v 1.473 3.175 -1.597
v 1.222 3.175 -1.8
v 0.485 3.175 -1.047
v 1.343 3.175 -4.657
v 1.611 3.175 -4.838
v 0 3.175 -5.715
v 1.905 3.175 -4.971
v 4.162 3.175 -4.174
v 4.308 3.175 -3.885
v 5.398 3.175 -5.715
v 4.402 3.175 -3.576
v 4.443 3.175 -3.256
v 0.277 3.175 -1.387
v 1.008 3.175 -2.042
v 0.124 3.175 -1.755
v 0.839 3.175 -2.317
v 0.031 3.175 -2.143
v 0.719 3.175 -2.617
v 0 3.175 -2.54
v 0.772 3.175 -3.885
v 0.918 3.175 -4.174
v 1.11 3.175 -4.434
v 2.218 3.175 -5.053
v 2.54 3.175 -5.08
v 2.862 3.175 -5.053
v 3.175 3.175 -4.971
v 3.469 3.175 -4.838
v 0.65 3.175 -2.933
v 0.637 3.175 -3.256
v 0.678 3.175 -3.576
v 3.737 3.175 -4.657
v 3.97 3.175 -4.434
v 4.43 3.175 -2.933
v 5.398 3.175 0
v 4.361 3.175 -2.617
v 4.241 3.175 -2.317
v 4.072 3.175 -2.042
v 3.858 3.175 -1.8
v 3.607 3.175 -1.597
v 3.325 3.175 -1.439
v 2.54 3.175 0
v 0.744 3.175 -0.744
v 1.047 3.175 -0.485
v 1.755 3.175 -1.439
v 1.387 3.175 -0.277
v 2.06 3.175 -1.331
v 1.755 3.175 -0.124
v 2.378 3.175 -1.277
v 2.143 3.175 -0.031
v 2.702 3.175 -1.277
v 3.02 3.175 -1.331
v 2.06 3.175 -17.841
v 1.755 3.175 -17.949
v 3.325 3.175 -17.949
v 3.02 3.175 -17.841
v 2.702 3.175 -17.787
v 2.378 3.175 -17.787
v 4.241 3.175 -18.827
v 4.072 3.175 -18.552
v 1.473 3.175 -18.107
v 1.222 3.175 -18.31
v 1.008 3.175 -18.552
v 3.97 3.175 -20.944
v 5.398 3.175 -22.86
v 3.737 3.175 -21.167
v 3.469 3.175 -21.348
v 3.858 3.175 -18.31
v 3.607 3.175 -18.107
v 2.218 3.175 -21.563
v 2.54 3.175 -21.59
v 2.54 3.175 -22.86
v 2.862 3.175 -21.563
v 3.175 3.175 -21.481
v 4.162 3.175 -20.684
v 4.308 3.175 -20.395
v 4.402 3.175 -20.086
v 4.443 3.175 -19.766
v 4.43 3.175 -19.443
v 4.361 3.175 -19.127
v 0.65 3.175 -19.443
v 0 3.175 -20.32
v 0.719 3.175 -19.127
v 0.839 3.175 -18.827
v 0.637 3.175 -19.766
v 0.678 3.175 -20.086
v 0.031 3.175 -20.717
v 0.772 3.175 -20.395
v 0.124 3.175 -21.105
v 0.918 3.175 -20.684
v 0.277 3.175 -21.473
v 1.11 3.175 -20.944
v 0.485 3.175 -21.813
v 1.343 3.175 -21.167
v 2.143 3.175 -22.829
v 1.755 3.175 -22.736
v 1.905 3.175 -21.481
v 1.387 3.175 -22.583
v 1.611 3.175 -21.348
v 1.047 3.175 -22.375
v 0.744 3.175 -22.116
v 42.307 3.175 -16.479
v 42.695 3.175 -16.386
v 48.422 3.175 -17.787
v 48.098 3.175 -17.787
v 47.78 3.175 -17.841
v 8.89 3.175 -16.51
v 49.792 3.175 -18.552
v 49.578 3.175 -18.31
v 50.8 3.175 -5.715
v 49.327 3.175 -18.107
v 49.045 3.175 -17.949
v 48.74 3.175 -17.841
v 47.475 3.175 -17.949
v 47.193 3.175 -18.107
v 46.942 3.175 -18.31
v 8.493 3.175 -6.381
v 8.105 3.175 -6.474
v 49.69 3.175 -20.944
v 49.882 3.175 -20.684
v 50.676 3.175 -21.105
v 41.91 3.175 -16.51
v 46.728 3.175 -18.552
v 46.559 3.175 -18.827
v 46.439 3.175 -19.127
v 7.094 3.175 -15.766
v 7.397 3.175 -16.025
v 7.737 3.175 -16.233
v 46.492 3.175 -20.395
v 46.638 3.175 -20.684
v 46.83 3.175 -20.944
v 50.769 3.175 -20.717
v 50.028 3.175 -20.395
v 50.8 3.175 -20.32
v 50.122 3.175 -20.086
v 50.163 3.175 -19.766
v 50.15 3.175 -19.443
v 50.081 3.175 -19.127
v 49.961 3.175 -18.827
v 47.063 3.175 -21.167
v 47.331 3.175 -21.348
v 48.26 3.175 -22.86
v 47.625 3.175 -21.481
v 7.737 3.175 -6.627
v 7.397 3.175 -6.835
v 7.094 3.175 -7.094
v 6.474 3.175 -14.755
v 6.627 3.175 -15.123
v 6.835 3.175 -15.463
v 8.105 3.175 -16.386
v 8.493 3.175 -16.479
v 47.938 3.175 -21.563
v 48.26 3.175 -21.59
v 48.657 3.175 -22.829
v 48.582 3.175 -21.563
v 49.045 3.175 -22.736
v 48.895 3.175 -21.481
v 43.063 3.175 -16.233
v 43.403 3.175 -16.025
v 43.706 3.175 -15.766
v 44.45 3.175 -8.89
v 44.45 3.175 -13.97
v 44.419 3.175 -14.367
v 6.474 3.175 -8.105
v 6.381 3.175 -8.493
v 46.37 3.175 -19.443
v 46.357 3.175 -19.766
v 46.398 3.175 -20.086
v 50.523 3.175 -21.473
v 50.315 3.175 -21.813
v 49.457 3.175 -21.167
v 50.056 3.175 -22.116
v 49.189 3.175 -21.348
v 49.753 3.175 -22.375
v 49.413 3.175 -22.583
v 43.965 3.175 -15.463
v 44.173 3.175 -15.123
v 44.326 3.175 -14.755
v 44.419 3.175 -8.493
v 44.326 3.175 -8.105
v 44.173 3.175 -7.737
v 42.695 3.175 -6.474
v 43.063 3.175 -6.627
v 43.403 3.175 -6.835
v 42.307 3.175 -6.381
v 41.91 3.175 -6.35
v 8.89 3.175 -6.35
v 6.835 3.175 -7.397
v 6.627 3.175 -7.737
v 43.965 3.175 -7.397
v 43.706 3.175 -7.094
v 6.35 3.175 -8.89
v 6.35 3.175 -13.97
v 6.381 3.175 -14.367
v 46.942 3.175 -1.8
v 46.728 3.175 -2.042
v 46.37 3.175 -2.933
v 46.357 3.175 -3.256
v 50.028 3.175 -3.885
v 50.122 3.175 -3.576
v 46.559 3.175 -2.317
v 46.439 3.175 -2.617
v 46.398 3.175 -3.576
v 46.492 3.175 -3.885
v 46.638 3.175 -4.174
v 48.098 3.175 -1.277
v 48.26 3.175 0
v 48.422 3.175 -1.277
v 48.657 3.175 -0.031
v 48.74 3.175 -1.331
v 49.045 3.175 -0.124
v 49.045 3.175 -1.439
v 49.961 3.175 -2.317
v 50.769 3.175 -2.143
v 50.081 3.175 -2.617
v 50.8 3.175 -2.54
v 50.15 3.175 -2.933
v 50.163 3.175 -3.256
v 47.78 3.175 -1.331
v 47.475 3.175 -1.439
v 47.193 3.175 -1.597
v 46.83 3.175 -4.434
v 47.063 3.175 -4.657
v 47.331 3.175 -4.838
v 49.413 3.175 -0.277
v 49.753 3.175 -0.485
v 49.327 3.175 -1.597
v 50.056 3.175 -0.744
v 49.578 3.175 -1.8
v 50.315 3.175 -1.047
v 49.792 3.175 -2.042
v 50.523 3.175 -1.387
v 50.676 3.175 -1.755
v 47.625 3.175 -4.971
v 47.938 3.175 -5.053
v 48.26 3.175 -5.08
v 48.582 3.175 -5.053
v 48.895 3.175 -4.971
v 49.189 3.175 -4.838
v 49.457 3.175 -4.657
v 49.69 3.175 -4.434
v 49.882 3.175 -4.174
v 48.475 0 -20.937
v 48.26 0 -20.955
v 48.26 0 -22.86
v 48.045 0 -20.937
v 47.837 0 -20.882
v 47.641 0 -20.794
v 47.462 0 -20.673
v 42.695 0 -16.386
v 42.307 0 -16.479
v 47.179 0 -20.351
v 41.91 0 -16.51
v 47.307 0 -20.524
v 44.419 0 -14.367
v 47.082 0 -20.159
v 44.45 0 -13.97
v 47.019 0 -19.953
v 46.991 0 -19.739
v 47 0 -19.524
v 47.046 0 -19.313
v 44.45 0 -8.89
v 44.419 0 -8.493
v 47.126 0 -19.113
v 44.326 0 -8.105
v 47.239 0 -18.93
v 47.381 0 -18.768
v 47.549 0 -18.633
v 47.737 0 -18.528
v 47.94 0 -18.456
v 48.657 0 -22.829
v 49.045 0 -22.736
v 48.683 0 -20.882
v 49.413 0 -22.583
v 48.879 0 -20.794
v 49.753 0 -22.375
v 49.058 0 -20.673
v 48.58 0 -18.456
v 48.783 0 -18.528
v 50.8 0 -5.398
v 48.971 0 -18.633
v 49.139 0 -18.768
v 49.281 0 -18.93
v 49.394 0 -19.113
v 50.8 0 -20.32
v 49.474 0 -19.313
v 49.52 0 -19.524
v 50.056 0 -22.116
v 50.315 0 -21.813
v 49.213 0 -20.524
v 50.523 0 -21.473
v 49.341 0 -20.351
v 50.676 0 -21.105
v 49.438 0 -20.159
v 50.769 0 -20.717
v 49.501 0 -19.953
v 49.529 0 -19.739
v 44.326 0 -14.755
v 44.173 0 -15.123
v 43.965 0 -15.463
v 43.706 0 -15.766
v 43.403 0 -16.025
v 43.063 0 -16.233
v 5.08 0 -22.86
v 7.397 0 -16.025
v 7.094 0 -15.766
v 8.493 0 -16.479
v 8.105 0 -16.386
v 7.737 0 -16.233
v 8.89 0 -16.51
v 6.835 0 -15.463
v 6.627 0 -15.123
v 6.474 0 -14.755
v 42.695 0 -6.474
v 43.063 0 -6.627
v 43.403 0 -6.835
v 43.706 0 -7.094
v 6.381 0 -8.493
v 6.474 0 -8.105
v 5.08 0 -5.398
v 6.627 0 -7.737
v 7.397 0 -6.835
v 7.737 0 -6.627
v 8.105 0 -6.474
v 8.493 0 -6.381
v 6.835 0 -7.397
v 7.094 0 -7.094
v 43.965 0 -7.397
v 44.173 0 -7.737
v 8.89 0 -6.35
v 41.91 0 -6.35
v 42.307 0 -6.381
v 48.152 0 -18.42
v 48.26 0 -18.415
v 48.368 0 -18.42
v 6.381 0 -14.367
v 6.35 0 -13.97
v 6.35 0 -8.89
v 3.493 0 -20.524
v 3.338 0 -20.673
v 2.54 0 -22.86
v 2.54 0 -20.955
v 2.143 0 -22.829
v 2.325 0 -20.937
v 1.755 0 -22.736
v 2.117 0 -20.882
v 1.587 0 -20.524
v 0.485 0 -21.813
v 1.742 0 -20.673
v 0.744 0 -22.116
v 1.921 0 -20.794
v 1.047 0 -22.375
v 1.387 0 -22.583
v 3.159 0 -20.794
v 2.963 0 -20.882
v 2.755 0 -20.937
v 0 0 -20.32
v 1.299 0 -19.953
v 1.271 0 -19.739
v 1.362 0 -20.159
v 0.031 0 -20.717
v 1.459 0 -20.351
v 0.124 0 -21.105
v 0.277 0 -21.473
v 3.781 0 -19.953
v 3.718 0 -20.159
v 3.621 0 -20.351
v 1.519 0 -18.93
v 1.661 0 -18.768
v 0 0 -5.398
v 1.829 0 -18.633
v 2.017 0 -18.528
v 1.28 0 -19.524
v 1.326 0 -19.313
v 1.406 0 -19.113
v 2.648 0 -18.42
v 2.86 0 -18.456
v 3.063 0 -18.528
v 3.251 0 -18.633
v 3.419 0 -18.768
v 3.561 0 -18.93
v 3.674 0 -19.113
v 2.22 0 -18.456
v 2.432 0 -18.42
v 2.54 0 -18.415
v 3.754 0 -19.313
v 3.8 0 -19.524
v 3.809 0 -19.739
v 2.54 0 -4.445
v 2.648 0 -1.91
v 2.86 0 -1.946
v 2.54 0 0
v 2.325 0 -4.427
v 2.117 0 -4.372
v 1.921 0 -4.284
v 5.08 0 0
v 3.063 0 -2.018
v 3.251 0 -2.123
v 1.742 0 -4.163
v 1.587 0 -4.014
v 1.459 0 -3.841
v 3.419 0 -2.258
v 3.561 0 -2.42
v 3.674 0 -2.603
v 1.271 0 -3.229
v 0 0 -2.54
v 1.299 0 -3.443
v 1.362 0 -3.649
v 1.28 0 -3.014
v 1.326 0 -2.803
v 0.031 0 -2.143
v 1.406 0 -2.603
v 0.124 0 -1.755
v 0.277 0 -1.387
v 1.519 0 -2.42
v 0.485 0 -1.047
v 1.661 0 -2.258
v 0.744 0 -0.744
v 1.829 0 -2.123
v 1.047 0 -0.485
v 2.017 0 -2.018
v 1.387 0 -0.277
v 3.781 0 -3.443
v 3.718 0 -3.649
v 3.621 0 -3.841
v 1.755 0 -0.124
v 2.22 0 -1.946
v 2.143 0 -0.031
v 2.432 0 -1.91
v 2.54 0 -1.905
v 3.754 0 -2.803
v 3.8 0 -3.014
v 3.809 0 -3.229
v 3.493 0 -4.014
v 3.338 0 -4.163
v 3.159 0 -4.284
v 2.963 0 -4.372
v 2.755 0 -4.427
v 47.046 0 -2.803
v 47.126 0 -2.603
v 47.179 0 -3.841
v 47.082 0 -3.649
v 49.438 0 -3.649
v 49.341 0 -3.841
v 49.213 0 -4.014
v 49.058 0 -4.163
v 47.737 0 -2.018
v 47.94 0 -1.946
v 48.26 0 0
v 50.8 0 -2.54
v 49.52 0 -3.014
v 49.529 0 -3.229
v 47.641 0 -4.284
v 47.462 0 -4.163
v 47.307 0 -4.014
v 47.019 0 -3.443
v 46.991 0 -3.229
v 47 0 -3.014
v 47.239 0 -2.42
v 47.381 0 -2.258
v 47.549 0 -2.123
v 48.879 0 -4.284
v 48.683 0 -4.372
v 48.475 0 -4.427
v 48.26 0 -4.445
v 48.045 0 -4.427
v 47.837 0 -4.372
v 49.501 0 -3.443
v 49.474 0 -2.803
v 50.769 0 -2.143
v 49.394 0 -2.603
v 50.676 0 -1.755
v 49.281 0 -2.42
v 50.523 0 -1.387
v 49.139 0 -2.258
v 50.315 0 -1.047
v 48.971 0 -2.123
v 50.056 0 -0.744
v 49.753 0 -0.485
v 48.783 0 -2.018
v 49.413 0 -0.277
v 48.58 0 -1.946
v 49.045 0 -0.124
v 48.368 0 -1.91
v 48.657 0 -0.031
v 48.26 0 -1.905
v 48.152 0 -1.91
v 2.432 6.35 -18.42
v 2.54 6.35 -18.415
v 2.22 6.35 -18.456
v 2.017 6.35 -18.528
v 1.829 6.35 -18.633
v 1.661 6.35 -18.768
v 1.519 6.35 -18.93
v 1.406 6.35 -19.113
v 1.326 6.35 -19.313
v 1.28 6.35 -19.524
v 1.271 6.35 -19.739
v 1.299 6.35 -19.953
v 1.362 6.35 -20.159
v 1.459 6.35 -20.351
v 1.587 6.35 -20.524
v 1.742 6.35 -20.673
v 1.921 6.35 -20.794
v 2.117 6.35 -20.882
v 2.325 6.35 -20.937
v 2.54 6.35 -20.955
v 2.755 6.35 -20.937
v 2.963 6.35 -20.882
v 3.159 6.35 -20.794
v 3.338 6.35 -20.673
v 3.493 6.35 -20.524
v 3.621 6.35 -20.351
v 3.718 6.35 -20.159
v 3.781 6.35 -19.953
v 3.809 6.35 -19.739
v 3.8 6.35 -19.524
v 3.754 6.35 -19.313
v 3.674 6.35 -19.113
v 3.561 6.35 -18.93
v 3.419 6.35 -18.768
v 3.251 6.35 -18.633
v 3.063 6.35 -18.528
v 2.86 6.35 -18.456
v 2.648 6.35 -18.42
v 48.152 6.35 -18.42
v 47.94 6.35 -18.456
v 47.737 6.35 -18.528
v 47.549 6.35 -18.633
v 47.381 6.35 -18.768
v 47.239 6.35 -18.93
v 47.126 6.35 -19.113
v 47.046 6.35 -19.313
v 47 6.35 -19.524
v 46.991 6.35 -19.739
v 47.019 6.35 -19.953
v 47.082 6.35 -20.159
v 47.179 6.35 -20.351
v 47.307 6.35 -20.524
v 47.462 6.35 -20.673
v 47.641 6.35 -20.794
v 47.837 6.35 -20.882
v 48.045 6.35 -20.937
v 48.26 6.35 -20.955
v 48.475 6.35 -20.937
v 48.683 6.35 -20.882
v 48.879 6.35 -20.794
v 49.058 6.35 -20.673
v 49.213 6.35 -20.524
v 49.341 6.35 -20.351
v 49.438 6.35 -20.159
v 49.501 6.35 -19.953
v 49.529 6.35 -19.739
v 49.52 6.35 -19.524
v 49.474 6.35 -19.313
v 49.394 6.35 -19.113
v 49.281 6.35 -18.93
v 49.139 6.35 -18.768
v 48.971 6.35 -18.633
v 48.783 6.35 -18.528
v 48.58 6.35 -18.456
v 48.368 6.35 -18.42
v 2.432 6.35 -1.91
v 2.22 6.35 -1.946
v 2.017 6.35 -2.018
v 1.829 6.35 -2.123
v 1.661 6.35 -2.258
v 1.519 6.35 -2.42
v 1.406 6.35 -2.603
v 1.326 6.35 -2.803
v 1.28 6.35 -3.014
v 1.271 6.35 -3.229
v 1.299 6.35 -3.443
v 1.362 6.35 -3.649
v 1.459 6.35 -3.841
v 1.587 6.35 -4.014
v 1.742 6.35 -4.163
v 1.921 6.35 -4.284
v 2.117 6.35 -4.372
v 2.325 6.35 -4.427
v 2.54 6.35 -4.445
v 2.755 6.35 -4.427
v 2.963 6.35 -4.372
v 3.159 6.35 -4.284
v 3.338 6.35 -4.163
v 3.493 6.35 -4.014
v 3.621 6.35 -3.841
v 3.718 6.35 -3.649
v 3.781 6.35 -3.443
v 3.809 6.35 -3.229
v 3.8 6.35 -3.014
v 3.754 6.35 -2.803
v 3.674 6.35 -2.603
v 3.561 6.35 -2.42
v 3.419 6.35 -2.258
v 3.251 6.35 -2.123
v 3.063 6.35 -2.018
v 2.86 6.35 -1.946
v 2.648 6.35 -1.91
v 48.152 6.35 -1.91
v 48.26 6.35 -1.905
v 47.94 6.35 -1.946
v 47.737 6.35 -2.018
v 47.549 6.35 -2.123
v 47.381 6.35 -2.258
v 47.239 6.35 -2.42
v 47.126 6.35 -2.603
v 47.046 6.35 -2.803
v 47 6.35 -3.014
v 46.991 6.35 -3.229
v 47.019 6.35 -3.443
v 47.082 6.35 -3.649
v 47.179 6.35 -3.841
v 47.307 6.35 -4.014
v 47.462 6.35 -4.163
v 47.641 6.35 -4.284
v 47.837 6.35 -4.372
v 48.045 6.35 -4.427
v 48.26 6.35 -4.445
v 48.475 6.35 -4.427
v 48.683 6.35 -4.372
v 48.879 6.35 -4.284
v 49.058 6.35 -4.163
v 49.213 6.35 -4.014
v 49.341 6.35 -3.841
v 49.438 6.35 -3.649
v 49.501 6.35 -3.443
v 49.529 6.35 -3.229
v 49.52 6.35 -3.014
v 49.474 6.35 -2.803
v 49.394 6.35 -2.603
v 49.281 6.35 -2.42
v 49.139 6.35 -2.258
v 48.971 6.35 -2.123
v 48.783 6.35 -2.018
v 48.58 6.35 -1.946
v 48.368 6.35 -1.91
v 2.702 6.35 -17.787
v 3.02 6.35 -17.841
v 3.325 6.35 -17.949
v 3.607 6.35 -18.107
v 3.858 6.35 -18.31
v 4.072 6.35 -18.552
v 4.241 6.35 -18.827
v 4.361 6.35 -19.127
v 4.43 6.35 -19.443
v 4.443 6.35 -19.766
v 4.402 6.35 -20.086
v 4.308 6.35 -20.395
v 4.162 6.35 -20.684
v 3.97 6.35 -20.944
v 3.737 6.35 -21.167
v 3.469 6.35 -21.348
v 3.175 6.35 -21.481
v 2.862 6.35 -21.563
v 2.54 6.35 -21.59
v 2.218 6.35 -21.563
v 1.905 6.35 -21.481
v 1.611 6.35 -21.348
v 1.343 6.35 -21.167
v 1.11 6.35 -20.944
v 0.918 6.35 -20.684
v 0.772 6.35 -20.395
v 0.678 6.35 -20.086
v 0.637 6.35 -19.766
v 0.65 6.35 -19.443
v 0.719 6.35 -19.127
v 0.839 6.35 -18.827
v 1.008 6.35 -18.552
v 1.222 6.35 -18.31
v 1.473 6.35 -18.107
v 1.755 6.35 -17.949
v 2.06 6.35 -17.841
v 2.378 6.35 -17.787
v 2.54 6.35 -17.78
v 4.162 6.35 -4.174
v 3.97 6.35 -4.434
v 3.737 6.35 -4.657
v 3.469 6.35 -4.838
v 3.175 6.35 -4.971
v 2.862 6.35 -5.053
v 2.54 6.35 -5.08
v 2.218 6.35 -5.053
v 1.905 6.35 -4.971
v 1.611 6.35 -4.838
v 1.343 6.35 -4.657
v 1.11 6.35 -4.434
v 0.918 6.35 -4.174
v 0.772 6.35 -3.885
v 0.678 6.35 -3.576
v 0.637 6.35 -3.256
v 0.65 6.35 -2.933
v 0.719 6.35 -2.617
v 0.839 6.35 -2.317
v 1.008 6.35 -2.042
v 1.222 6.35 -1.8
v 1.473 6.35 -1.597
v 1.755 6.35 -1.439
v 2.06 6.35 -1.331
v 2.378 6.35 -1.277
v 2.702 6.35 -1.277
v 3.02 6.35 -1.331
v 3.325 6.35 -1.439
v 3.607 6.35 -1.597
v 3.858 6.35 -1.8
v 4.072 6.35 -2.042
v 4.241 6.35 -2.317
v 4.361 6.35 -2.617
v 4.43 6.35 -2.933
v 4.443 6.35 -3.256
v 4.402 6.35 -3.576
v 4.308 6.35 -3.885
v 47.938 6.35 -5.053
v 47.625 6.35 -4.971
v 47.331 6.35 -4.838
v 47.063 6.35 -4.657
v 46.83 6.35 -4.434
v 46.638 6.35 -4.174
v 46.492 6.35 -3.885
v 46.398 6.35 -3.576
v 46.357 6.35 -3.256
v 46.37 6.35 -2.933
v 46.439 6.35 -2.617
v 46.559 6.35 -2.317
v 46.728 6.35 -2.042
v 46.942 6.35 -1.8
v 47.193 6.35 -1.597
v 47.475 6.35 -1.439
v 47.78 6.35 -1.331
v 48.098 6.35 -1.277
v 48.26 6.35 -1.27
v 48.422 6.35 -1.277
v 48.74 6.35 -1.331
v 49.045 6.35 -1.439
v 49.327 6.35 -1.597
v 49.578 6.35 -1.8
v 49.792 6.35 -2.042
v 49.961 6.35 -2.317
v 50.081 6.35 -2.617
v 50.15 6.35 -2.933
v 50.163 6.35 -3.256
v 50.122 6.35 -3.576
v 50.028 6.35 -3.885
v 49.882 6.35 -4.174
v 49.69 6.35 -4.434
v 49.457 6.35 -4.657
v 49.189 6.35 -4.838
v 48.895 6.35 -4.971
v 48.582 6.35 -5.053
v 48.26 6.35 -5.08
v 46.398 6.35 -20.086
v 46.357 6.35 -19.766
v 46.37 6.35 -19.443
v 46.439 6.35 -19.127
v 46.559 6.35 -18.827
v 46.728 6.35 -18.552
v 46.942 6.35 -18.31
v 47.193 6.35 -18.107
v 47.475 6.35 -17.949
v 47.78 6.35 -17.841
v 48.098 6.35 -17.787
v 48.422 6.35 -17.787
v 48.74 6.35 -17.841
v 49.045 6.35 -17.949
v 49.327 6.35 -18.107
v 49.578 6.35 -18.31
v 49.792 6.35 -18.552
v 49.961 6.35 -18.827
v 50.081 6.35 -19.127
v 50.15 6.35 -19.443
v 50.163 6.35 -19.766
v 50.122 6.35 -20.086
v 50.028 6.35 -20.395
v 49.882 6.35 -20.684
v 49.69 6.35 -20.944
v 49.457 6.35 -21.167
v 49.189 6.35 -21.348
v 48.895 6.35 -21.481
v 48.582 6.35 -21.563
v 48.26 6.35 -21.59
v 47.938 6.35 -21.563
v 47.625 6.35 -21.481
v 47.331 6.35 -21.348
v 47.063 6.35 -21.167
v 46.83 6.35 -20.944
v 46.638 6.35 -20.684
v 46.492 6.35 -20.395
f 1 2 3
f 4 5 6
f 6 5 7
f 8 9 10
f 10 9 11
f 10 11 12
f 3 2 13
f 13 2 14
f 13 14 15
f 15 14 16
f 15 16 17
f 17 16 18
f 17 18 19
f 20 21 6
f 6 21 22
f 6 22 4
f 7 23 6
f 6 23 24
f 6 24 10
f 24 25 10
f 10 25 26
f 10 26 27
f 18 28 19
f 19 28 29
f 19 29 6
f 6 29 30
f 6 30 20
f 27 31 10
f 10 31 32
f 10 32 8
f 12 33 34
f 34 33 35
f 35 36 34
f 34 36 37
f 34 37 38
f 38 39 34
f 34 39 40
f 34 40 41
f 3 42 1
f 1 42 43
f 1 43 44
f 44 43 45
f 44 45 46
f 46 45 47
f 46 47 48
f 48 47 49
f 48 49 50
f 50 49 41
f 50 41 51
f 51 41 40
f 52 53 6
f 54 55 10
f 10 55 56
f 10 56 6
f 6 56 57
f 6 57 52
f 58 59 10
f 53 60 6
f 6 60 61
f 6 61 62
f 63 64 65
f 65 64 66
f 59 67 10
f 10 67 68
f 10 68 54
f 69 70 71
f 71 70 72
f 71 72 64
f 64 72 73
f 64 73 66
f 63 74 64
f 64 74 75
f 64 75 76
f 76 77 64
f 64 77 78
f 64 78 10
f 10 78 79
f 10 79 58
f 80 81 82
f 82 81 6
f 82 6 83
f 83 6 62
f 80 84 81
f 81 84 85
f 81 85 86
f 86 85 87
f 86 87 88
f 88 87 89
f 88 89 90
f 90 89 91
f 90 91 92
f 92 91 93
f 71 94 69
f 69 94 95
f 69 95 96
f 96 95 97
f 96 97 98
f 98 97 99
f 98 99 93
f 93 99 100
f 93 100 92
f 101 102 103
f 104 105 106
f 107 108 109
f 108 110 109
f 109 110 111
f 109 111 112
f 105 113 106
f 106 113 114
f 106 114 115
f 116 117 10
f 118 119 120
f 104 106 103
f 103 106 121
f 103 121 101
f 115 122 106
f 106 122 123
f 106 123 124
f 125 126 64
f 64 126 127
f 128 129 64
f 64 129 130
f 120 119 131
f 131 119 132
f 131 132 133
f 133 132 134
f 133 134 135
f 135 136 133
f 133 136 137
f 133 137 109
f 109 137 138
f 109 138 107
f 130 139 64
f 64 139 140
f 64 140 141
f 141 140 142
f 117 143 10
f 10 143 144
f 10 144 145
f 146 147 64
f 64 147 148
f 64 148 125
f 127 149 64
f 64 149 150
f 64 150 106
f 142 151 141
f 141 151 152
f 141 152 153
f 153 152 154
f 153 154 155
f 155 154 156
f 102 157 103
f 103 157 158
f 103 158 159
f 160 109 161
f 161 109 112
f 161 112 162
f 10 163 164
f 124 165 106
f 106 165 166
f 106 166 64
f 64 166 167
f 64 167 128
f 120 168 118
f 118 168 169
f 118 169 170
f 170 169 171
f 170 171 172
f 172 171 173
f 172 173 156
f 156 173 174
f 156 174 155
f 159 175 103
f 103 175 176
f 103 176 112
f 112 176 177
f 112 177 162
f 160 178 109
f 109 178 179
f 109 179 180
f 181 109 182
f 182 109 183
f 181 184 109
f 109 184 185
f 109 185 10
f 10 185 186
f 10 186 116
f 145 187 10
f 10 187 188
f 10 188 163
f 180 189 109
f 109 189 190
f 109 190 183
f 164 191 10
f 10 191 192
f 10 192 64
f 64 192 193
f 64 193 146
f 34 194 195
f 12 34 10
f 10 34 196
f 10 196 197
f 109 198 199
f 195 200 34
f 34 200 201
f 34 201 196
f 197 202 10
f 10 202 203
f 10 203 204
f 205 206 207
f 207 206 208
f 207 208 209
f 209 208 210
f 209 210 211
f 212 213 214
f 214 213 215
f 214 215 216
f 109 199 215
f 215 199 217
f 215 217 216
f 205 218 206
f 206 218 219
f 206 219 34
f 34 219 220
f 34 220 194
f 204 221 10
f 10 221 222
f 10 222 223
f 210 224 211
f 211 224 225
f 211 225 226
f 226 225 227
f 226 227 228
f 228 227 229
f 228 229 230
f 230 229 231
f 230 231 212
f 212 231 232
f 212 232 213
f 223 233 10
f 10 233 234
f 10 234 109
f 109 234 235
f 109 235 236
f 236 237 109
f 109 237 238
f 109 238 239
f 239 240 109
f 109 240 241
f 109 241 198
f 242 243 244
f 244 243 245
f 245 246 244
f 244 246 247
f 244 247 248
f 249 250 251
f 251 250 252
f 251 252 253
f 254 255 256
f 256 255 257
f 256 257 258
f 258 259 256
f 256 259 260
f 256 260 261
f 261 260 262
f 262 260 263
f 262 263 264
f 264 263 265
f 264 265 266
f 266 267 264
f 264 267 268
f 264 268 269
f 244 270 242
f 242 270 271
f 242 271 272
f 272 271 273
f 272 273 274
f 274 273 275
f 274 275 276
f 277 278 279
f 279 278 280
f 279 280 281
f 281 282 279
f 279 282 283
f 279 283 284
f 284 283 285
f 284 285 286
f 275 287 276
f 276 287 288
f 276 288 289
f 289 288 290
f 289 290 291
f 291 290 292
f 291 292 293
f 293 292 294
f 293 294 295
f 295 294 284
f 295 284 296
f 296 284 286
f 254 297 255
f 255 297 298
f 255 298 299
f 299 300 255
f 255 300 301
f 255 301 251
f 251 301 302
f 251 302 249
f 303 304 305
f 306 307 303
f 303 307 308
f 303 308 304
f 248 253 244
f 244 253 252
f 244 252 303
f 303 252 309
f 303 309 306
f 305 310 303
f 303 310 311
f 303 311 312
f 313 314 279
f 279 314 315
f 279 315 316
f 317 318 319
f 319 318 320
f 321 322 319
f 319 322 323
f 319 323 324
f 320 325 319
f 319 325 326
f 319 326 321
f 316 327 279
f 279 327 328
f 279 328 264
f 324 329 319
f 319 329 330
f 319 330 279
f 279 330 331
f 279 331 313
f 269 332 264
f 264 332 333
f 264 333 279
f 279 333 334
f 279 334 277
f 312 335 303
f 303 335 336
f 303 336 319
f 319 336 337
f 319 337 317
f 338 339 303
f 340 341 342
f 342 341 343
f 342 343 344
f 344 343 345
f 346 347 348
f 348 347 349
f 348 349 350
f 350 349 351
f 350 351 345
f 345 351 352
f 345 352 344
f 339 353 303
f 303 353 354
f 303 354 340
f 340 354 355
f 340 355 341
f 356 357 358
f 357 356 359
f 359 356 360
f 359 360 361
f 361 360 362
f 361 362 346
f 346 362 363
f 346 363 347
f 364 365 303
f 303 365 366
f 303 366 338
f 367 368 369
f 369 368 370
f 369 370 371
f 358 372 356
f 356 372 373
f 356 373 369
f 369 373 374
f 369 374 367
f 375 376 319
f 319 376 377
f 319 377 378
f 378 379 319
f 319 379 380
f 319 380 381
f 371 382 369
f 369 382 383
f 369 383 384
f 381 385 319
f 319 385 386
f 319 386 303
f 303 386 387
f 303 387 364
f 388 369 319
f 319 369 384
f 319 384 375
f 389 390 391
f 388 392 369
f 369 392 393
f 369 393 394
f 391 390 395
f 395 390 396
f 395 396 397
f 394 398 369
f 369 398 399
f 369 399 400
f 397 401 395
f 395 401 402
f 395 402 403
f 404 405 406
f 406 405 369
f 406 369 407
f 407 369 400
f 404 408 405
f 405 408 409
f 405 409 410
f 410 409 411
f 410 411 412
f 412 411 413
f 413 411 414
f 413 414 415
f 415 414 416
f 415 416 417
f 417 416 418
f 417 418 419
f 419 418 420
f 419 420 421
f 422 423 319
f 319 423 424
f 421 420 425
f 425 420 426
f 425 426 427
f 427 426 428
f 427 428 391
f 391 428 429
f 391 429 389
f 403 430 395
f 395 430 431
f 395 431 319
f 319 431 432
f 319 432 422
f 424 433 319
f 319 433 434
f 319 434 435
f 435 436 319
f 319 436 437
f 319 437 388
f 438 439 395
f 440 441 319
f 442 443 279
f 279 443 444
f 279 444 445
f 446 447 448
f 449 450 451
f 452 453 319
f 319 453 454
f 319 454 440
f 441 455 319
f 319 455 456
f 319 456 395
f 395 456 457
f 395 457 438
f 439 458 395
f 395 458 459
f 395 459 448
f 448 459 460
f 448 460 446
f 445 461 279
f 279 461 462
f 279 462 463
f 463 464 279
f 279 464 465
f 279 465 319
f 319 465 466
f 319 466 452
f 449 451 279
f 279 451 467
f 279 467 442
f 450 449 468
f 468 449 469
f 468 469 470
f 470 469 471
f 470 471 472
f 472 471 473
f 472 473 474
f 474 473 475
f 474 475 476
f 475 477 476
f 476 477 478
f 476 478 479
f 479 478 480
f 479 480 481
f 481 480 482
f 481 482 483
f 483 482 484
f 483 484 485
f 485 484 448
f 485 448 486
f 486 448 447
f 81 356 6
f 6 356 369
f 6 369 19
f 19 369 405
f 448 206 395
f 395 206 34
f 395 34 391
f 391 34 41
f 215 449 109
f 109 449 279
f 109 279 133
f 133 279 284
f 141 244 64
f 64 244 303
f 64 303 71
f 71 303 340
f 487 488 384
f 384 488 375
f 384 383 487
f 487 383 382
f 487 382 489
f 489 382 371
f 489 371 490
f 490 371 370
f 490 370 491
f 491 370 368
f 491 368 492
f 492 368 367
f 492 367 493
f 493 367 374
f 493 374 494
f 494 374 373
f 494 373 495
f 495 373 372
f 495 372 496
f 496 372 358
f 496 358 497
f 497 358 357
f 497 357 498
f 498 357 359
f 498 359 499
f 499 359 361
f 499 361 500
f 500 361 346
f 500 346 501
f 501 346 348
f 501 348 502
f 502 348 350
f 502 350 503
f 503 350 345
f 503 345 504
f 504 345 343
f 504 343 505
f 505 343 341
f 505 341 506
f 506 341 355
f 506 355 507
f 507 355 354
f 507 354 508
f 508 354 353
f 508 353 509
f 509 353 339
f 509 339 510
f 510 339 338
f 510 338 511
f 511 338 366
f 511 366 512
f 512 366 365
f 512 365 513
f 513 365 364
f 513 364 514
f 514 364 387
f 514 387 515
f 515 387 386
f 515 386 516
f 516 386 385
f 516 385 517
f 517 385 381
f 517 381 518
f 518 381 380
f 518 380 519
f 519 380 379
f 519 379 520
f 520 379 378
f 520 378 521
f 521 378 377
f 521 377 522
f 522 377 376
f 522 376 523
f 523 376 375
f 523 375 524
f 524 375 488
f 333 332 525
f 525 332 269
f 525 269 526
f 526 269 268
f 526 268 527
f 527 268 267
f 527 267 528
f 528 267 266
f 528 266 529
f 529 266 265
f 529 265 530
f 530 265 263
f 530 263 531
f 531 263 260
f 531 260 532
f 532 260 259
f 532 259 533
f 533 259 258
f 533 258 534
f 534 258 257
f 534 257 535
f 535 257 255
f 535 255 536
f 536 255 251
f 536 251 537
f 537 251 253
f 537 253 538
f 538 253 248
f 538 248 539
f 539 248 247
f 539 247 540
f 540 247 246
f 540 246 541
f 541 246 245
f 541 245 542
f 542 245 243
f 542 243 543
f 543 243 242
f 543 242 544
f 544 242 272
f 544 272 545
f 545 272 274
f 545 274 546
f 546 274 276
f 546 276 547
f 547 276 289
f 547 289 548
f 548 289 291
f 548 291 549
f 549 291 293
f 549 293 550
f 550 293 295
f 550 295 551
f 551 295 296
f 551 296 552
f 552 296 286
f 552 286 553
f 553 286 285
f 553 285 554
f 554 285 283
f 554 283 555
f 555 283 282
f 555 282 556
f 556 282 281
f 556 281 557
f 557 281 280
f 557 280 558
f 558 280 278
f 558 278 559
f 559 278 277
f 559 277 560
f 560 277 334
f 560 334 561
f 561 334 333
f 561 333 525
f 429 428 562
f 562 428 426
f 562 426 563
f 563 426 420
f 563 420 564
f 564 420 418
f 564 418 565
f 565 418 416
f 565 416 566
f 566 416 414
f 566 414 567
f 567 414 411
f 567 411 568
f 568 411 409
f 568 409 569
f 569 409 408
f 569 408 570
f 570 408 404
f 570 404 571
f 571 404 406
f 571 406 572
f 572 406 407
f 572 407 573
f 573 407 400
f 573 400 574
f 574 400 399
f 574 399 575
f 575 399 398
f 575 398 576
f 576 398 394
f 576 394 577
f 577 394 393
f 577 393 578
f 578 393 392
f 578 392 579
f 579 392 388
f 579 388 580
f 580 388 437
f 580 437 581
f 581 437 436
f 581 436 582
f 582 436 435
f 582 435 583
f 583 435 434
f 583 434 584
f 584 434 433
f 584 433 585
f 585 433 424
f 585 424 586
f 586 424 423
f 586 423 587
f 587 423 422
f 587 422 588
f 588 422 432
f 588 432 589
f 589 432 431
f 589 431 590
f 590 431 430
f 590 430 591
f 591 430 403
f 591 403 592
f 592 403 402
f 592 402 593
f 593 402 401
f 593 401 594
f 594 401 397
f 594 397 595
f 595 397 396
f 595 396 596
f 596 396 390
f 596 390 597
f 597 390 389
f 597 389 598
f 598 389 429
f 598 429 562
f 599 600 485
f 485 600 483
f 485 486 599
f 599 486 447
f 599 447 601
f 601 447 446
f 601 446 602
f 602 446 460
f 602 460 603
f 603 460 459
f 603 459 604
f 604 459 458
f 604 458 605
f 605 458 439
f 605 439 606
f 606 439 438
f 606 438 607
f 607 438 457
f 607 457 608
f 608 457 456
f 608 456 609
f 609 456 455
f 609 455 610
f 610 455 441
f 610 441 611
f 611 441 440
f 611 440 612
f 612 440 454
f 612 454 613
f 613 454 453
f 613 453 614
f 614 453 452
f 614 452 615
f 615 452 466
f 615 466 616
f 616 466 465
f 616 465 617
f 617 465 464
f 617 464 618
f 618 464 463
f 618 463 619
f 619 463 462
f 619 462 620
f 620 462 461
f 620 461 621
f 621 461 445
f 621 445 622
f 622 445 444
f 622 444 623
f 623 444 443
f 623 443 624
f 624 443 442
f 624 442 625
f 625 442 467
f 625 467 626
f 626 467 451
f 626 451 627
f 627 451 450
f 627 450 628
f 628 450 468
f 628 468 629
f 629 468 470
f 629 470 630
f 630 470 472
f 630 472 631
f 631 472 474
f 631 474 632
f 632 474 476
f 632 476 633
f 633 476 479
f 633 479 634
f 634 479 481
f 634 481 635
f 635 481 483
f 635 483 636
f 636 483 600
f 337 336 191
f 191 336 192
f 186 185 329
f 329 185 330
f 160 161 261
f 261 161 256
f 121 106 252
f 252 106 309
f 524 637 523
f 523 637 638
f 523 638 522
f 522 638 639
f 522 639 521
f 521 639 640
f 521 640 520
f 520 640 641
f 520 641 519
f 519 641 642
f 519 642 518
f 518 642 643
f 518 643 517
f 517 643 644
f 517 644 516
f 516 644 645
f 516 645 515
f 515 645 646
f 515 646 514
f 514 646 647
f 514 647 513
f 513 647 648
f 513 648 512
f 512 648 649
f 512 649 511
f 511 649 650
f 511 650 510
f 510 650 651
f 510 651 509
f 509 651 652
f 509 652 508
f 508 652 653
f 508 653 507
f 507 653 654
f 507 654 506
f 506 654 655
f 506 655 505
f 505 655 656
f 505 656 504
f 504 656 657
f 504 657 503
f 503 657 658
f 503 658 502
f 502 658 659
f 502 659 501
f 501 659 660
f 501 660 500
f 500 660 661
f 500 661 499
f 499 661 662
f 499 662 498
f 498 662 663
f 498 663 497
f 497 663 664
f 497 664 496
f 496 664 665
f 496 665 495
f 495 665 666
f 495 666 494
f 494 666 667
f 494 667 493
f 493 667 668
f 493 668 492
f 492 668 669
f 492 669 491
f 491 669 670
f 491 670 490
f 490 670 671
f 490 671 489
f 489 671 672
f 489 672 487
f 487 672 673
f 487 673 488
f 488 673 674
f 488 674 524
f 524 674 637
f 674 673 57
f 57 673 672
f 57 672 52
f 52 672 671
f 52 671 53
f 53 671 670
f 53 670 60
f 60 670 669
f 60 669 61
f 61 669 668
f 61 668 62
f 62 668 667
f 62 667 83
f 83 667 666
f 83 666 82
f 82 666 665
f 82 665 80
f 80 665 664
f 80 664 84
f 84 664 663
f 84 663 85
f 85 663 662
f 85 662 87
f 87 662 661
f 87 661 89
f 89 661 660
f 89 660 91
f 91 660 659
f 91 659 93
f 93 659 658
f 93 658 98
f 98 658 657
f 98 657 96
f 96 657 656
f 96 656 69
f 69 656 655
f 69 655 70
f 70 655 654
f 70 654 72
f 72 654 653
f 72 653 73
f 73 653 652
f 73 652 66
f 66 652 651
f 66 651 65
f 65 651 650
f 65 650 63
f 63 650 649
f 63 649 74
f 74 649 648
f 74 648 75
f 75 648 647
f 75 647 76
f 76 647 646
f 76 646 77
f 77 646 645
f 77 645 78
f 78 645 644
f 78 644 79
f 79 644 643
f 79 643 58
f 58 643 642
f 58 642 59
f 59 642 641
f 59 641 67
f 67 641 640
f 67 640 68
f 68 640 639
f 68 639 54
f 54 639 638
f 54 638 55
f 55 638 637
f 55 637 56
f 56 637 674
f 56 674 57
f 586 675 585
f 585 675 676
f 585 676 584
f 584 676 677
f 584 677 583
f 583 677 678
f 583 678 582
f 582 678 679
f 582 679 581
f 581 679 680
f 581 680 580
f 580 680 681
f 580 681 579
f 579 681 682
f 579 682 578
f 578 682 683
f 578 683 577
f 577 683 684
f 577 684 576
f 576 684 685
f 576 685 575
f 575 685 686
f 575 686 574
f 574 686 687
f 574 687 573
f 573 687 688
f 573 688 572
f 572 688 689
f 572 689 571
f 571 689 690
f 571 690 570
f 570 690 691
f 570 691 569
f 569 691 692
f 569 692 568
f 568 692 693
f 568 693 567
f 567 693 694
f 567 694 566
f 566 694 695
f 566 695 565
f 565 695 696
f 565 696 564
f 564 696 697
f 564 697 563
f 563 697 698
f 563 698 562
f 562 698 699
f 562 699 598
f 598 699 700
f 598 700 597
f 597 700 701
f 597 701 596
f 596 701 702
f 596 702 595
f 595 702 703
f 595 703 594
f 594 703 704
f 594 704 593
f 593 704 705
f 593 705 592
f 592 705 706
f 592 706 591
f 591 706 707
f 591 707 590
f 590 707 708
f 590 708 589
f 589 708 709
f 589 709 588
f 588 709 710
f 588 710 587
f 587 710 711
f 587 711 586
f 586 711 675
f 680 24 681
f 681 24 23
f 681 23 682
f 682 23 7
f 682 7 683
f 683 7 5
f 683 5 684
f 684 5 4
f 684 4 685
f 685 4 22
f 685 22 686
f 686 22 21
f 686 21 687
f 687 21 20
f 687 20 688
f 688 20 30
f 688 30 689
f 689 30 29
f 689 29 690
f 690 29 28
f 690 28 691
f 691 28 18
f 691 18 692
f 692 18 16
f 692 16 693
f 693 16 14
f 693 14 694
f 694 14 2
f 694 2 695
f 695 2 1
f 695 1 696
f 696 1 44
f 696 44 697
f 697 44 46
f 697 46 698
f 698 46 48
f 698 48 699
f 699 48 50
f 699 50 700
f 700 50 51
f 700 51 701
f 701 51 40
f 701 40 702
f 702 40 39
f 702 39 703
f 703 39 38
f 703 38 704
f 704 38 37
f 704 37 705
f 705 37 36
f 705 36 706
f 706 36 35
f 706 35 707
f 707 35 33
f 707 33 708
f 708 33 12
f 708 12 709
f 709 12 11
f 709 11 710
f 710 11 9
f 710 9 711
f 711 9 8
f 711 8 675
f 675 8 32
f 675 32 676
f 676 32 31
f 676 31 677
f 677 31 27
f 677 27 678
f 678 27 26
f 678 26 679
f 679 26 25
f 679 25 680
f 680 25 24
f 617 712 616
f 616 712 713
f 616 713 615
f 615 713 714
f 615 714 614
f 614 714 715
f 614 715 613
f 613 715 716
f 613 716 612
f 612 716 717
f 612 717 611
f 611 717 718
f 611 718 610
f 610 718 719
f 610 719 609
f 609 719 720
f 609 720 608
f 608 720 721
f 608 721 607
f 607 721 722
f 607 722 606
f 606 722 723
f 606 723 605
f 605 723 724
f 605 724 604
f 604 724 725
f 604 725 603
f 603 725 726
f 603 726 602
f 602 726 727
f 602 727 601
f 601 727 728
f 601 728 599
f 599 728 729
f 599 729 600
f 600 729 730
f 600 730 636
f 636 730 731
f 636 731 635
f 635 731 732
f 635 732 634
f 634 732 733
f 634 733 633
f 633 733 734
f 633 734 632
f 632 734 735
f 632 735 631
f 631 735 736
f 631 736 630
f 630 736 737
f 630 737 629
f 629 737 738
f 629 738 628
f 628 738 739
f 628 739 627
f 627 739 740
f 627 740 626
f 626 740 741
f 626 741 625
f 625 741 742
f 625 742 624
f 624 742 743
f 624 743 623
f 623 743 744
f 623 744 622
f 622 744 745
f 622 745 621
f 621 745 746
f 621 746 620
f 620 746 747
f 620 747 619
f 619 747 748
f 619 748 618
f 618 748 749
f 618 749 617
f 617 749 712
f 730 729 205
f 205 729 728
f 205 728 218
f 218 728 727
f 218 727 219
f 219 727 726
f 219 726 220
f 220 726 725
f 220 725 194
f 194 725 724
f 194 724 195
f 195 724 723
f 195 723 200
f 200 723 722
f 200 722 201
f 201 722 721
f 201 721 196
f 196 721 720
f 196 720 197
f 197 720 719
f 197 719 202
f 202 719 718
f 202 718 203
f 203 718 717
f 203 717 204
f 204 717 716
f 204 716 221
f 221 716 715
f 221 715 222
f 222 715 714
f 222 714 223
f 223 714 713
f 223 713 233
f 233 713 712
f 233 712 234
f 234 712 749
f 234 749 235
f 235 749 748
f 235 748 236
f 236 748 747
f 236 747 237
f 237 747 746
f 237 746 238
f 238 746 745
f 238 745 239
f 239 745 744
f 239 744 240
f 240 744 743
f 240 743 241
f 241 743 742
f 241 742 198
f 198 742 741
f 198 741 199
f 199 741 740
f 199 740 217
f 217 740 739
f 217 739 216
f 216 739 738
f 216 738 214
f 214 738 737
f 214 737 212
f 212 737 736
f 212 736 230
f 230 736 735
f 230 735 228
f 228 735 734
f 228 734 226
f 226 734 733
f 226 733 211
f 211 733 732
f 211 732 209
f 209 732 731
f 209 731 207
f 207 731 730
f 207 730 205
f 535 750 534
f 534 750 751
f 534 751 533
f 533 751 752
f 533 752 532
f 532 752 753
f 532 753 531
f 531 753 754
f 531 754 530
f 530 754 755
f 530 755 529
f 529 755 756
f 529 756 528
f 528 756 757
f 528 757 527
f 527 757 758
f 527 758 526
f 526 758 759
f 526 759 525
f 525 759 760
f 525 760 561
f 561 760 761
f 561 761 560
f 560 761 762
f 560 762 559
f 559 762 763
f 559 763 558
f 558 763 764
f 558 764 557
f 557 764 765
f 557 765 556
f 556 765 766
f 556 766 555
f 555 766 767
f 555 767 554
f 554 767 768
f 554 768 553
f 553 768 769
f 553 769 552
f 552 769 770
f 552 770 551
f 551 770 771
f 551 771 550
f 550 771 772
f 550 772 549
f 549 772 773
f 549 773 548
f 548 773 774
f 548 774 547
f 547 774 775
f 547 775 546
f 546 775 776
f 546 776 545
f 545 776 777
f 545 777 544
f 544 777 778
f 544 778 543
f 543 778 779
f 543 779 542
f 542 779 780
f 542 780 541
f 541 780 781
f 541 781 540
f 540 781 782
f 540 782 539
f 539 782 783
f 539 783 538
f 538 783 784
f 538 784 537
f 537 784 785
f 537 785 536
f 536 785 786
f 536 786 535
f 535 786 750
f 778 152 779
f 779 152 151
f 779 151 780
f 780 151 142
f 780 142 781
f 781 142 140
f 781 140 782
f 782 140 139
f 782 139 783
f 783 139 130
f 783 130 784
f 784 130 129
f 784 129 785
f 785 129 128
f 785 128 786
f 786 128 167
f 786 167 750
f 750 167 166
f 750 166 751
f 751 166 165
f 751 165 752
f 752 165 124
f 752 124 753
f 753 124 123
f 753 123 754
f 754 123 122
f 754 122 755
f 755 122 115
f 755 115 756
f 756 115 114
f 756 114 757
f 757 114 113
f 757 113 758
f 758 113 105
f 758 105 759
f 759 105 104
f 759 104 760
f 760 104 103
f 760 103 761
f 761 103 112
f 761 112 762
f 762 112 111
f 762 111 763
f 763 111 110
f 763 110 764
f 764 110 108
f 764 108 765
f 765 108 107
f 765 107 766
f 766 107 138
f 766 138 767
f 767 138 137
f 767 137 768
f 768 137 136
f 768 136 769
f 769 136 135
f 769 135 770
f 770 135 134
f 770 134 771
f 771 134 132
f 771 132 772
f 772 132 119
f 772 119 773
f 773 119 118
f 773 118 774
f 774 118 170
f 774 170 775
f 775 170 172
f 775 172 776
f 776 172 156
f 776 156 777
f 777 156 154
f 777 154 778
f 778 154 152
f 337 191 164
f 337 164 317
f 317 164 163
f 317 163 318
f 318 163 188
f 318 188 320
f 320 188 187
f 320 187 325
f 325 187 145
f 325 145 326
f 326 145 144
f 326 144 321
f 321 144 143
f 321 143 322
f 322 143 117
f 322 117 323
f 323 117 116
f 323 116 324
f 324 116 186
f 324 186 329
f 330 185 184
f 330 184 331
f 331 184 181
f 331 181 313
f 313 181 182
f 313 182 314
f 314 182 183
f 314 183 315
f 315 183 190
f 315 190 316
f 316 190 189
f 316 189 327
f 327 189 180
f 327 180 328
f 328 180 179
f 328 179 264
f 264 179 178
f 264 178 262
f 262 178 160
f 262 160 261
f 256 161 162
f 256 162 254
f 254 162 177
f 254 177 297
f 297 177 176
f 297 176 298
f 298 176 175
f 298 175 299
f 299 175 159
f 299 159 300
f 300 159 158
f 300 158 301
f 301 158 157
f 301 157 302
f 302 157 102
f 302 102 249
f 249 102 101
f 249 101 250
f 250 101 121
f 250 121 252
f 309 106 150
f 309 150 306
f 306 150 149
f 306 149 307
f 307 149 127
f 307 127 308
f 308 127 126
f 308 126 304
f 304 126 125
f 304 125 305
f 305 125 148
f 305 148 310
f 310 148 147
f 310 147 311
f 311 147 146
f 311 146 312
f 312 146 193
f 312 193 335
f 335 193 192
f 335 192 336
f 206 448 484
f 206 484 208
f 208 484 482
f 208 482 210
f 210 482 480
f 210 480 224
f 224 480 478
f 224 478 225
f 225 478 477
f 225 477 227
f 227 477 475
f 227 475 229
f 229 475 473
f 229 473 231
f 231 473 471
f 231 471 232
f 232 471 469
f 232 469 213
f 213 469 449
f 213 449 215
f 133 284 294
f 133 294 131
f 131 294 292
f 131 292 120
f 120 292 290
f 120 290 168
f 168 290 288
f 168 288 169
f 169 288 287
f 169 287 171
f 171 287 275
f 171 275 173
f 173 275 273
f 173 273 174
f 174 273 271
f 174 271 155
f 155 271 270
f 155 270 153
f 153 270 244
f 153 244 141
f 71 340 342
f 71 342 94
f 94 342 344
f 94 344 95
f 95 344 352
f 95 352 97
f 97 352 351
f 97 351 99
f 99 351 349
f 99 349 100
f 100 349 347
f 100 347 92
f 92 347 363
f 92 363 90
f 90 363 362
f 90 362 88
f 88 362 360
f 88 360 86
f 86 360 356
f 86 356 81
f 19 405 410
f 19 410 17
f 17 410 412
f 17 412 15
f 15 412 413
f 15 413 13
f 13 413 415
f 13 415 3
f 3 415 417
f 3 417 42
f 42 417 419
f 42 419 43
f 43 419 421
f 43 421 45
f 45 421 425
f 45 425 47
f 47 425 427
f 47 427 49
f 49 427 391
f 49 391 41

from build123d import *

# Parameters (mm, degrees)
SKETCH1_W           = 50.8
SKETCH1_H           = 22.86
SKETCH1_R           = 1.27
SKETCH1_W_2         = 38.1
SKETCH1_H_2         = 10.16
BOSS_EXTRUDE1_DEPTH = 3.175
SKETCH2_R           = 1.905
SKETCH2_R_2         = 1.27
BOSS_EXTRUDE2_DEPTH = 3.175
FILLET1_R           = 2.54


with BuildPart() as part:
    # Sketch1 → Boss-Extrude1 (new body)
    with BuildSketch(Plane(origin=(0, 0, 0), x_dir=(1, 0, 0), z_dir=(0, 1, 0))):
        with Locations((25.4, 11.43)):
            Rectangle(SKETCH1_W, SKETCH1_H)
        with Locations((2.54, 19.685)):
            Circle(SKETCH1_R, mode=Mode.SUBTRACT)
        with Locations((48.26, 19.685)):
            Circle(SKETCH1_R, mode=Mode.SUBTRACT)
        with Locations((2.54, 3.175)):
            Circle(SKETCH1_R, mode=Mode.SUBTRACT)
        with Locations((48.26, 3.175)):
            Circle(SKETCH1_R, mode=Mode.SUBTRACT)
        with Locations((25.4, 11.43)):
            Rectangle(SKETCH1_W_2, SKETCH1_H_2, mode=Mode.SUBTRACT)
    extrude(amount=BOSS_EXTRUDE1_DEPTH)

    # Sketch2 → Boss-Extrude2 (add)
    with BuildSketch(Plane(origin=(0, 3.175, 0), x_dir=(1, 0, 0), z_dir=(0, 1, 0))):
        with Locations((2.54, 19.685)):
            Circle(SKETCH2_R)
        with Locations((2.54, 19.685)):
            Circle(SKETCH2_R_2, mode=Mode.SUBTRACT)
        with Locations((2.54, 3.175)):
            Circle(SKETCH2_R)
        with Locations((2.54, 3.175)):
            Circle(SKETCH2_R_2, mode=Mode.SUBTRACT)
        with Locations((48.26, 3.175)):
            Circle(SKETCH2_R)
        with Locations((48.26, 3.175)):
            Circle(SKETCH2_R_2, mode=Mode.SUBTRACT)
        with Locations((48.26, 19.685)):
            Circle(SKETCH2_R)
        with Locations((48.26, 19.685)):
            Circle(SKETCH2_R_2, mode=Mode.SUBTRACT)
    extrude(amount=BOSS_EXTRUDE2_DEPTH)

    # Fillet1
    fillet1_edges = [part.edges().sort_by_distance(p)[0] for p in [
        (6.35, 1.5875, -16.51),
        (6.35, 1.5875, -6.35),
        (44.45, 1.5875, -6.35),
        (44.45, 1.5875, -16.51),
        (0, 1.5875, -22.86),
        (50.8, 1.5875, -22.86),
        (50.8, 1.5875, 0),
        (0, 1.5875, 0),
    ]]
    fillet(fillet1_edges, radius=FILLET1_R)


solid = part.part
